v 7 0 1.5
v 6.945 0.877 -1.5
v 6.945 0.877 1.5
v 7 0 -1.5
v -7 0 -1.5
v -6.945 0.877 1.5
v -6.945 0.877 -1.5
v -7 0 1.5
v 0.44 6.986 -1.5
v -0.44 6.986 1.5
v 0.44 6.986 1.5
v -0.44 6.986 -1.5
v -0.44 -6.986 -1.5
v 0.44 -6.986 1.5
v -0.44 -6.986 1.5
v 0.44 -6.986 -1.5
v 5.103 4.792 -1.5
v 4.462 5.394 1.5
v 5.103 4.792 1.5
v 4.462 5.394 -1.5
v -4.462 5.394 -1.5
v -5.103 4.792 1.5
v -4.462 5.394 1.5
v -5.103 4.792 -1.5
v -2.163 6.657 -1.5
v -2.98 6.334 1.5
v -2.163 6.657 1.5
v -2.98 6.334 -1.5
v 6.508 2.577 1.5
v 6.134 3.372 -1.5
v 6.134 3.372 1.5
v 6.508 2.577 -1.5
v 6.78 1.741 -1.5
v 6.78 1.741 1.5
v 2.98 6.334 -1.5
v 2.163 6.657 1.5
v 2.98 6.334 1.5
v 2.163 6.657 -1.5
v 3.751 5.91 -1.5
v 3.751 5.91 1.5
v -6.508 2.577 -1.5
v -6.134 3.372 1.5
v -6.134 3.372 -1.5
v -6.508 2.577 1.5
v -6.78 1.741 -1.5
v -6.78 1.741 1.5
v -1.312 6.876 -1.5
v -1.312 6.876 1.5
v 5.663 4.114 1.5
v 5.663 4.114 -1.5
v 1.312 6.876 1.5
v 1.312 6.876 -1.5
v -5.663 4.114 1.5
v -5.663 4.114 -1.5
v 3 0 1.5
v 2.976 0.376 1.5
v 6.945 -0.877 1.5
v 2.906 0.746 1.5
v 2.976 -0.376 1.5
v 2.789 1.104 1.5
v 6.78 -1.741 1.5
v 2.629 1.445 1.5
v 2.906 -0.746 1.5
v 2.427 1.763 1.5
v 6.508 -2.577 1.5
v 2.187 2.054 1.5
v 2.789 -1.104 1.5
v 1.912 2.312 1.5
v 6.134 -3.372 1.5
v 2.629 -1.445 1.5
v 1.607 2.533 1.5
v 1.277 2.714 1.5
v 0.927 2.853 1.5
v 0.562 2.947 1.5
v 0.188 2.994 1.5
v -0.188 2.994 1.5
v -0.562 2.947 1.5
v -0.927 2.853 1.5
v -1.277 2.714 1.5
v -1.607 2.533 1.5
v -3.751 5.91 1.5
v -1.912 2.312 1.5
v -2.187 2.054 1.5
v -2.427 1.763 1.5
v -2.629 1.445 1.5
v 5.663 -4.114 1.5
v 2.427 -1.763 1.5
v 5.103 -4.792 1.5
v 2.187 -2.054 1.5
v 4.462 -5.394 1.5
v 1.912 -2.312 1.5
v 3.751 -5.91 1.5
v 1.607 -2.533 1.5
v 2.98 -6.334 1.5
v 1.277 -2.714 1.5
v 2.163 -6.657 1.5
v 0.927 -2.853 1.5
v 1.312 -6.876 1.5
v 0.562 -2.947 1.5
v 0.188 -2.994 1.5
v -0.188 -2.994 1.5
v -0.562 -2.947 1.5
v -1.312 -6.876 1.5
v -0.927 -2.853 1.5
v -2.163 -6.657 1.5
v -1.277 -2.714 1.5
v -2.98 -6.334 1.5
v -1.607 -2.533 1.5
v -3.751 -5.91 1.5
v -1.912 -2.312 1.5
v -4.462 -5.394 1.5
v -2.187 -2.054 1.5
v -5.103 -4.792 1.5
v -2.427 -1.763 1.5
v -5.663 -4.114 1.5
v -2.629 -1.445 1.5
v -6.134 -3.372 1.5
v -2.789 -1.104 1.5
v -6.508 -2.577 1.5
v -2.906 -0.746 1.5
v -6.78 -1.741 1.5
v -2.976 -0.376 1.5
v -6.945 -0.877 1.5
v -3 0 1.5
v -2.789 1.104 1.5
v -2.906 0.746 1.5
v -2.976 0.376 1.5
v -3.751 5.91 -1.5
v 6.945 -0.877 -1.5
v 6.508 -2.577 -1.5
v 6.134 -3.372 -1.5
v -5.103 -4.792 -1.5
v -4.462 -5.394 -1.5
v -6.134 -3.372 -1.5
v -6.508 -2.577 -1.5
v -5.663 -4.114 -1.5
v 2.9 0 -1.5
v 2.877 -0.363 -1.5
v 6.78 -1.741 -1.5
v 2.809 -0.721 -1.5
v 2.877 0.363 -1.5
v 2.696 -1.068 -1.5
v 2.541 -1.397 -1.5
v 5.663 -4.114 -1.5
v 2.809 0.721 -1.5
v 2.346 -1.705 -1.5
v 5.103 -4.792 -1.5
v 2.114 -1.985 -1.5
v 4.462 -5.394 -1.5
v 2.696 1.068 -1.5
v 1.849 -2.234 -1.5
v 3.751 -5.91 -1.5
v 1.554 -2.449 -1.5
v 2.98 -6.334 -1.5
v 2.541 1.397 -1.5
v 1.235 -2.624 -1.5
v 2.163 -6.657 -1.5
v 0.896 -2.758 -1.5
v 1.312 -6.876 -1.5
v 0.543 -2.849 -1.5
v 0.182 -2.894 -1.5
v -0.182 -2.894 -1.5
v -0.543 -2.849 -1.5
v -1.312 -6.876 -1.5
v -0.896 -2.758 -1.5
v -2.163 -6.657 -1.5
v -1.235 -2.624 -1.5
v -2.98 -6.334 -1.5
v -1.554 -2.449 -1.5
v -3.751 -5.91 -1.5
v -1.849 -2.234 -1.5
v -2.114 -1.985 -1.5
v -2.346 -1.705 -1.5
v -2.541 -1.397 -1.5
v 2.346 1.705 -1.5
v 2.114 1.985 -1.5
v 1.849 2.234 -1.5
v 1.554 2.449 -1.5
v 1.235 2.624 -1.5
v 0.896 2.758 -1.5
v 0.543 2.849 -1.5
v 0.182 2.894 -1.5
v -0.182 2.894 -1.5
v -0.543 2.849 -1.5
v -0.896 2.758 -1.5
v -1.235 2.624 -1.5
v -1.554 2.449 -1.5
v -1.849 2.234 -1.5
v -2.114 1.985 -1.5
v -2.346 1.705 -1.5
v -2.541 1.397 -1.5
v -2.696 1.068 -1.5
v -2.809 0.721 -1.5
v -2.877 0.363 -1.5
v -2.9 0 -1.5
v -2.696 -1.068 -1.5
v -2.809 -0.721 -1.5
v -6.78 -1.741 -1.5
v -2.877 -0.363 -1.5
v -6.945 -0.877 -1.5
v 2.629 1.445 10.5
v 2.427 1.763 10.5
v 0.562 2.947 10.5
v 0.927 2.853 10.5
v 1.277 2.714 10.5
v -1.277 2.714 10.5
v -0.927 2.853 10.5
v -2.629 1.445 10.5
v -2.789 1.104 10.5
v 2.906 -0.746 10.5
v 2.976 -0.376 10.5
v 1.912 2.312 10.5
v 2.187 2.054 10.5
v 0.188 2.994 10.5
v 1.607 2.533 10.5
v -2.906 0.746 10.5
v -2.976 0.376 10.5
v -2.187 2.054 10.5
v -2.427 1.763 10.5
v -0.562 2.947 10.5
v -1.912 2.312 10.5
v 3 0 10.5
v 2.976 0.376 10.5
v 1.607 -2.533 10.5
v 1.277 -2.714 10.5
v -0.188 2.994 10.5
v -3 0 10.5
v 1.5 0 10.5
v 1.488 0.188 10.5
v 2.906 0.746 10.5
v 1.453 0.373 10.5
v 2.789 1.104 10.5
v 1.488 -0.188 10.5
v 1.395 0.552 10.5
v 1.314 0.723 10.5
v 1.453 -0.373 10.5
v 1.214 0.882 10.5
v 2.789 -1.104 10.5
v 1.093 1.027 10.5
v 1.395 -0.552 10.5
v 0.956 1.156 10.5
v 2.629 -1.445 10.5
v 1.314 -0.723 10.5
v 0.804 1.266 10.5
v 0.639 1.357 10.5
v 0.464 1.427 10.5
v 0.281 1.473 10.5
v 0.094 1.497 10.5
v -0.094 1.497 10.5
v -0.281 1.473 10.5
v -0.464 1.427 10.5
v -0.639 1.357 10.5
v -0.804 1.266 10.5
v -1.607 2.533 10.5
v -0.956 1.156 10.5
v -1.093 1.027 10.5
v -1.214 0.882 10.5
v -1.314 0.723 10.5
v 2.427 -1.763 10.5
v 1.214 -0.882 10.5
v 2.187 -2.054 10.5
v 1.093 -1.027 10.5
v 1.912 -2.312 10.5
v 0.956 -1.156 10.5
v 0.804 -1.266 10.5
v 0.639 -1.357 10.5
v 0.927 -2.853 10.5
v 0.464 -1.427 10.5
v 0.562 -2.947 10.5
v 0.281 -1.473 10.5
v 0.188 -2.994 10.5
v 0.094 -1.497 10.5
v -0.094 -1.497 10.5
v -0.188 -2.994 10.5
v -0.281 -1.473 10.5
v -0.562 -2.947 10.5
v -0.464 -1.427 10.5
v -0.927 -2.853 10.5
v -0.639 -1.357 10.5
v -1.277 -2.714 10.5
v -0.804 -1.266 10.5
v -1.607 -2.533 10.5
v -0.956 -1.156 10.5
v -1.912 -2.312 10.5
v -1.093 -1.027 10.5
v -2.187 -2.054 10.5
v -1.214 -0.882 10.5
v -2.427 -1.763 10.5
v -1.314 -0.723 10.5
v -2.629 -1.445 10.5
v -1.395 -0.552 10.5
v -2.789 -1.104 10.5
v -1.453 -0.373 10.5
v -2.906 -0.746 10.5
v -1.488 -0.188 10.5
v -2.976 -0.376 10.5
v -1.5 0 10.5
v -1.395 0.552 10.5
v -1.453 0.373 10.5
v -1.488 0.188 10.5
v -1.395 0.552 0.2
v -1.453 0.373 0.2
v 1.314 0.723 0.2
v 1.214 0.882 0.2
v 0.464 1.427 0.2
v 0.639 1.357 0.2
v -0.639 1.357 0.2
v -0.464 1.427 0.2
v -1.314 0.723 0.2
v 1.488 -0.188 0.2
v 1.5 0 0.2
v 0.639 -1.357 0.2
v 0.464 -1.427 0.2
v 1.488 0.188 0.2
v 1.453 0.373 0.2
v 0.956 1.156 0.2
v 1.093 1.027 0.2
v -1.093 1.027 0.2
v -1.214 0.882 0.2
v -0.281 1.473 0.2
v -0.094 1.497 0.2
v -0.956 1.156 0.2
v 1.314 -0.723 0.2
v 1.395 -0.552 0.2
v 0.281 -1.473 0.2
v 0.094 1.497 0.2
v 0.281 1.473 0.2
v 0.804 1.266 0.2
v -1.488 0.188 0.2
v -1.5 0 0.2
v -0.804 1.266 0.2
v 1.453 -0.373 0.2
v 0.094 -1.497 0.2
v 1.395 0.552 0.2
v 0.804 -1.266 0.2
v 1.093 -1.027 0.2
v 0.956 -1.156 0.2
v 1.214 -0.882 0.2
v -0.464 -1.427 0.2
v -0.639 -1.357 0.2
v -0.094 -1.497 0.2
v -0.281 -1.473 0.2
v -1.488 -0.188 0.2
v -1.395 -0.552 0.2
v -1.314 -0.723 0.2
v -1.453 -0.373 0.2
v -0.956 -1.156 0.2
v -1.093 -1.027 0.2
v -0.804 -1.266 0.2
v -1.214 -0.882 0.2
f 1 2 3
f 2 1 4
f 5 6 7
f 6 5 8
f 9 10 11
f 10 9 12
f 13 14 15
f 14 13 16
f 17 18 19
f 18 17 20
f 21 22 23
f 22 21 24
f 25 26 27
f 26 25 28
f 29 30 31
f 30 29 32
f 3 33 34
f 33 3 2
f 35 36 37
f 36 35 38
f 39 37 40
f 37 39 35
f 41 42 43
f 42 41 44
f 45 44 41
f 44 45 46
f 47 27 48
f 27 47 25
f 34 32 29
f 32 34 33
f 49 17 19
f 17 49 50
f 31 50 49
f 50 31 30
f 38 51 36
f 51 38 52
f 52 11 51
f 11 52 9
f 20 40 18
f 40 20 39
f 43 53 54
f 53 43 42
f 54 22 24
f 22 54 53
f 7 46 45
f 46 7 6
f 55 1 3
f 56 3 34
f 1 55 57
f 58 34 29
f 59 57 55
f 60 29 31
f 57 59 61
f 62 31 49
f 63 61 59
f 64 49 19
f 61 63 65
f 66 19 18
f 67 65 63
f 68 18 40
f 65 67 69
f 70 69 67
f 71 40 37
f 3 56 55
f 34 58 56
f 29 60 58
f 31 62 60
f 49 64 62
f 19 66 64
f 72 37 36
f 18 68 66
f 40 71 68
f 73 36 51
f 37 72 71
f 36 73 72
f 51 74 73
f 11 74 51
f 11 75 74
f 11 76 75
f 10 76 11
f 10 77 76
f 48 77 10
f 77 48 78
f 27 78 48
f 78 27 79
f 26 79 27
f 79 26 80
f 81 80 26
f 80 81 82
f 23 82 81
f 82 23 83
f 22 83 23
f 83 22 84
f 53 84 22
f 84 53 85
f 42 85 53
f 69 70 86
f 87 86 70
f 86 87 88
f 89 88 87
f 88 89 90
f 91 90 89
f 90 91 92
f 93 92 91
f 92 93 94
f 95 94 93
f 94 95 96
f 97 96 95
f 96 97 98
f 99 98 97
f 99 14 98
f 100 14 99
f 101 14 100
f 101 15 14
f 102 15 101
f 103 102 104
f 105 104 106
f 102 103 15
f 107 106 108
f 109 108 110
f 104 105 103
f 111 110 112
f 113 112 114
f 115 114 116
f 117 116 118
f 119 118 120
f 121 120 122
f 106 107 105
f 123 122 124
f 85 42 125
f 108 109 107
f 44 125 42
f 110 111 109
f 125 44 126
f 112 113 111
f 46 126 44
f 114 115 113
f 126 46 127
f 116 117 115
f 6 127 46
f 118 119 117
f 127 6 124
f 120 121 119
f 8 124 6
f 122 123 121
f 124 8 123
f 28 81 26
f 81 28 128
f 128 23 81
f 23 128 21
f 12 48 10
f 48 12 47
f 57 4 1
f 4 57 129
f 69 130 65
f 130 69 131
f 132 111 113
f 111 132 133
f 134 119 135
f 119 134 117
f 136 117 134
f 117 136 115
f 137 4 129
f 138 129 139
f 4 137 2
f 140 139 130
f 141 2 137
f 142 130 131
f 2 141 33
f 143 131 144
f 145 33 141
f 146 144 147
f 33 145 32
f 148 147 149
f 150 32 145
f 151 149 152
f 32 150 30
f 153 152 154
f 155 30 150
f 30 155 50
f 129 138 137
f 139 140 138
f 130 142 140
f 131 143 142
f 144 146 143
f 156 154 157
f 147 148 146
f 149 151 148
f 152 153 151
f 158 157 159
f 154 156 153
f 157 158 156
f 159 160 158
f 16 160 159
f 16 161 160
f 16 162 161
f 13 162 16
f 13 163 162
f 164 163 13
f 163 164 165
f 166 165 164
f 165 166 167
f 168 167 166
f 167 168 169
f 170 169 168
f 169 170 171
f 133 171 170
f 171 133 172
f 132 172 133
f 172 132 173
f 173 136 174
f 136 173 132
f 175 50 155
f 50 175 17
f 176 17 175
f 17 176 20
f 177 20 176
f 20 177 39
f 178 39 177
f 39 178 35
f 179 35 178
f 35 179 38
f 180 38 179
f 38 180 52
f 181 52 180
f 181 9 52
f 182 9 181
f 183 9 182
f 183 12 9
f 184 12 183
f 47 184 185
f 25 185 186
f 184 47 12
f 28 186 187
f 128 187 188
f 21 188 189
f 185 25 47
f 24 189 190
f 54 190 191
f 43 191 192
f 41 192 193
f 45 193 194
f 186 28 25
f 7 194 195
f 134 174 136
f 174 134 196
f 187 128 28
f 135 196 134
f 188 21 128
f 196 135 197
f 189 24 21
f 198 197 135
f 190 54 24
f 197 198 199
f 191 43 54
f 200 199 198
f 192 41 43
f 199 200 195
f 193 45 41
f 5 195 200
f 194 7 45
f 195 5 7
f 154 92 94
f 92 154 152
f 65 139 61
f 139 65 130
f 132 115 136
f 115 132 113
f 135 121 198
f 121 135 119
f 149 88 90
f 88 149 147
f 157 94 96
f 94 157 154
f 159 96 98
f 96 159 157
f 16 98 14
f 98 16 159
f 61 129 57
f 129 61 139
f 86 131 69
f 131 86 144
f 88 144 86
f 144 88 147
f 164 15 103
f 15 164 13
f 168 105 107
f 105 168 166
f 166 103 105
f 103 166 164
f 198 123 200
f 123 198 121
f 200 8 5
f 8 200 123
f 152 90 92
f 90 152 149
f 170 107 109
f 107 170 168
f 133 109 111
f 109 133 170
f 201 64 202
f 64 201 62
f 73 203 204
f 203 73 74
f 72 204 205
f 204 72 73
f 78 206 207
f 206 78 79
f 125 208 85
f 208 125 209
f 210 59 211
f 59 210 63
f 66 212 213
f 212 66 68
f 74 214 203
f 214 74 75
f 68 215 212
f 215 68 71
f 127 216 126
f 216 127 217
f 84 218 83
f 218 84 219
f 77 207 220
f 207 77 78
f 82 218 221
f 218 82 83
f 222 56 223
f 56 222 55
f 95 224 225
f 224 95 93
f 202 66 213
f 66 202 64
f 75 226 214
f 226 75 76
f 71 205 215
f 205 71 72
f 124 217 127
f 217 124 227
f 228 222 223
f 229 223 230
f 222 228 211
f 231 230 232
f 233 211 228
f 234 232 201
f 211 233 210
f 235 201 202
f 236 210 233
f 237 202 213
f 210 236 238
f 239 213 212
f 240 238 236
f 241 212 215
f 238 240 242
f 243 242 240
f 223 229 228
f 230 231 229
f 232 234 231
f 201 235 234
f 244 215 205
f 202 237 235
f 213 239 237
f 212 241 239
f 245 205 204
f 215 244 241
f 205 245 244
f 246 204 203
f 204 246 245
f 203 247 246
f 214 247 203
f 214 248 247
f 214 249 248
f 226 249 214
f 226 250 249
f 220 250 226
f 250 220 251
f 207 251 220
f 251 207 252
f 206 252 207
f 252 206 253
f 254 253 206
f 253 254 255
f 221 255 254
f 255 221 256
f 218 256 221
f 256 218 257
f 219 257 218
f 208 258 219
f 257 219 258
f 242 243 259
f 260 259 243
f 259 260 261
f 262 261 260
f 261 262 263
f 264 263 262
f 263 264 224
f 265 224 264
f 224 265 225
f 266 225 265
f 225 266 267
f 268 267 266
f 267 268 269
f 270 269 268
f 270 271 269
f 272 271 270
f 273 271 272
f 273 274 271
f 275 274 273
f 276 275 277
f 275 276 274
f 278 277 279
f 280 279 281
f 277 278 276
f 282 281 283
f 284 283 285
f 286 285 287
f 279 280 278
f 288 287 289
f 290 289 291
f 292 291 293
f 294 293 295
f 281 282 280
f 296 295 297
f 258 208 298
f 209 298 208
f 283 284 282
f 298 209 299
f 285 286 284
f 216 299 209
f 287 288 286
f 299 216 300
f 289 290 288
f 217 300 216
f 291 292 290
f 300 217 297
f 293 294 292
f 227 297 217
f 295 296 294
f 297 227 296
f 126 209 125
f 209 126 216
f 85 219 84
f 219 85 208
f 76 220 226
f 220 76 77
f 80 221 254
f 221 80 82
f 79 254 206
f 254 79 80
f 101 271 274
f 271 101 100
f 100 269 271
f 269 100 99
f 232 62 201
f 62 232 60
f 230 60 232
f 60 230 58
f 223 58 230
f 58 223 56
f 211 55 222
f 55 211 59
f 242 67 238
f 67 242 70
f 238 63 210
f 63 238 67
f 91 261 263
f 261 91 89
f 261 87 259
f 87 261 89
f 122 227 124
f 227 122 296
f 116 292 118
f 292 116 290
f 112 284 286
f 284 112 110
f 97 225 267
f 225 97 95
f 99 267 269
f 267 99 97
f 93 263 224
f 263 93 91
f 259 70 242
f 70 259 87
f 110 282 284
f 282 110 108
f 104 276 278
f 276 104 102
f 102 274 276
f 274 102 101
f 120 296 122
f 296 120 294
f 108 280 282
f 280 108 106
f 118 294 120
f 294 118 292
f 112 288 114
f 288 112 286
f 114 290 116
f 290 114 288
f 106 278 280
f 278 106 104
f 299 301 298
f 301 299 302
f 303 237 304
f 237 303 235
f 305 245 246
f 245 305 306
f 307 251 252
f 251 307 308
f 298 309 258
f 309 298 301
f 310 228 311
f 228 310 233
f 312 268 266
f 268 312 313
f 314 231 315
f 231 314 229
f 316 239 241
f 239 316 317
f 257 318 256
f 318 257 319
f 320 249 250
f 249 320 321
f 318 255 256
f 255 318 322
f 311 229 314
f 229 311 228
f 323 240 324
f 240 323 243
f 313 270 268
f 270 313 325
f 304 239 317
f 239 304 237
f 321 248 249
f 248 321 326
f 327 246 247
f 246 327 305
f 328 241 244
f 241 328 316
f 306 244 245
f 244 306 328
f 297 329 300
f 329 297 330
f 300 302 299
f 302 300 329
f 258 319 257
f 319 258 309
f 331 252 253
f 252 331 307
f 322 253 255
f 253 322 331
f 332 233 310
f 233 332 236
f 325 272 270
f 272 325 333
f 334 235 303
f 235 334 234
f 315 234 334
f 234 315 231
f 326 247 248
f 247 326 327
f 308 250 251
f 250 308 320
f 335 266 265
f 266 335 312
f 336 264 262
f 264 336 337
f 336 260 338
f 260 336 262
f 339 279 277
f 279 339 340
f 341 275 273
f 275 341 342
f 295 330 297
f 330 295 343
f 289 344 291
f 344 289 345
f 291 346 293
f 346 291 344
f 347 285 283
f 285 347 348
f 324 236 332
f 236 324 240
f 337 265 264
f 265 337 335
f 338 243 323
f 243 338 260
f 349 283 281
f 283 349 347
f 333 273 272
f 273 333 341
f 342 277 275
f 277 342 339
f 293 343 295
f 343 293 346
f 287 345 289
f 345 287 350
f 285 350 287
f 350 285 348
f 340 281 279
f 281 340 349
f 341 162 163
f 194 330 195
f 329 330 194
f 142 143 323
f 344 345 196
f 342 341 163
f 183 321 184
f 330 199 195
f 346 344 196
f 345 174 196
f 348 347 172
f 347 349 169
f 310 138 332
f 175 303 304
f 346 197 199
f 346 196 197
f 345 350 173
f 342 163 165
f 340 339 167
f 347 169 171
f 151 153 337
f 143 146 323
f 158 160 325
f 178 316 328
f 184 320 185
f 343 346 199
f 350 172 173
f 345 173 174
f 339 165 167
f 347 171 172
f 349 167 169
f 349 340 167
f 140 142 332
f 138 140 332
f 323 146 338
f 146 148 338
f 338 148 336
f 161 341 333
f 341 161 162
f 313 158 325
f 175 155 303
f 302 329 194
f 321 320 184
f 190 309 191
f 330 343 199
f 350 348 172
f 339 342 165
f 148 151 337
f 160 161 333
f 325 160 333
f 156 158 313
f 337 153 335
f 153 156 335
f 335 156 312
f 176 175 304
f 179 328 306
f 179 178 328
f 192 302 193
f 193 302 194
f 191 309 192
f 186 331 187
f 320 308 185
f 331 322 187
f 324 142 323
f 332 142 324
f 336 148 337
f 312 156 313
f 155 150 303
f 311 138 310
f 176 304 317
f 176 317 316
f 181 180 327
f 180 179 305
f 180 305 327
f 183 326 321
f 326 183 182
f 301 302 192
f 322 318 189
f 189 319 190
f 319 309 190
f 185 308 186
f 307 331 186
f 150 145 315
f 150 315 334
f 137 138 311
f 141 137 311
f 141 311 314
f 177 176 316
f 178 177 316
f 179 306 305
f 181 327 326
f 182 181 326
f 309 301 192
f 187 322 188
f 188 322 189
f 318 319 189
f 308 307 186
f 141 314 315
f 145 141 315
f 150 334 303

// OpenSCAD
$fn = 50;


difference() {
	union() {
		translate(v = [0, 0, -1.5000000000]) {
			rotate(a = [0, 0, 0]) {
				cylinder(h = 3, r = 7.0000000000);
			}
		}
		translate(v = [0, 0, -1.5000000000]) {
			rotate(a = [0, 0, 0]) {
				cylinder(h = 12, r = 3.0000000000);
			}
		}
	}
	union() {
		translate(v = [0, 0, -125.0000000000]) {
			rotate(a = [0, 0, 0]) {
				cylinder(h = 250, r = 1.5000000000);
			}
		}
		#translate(v = [0, 0, 0.2000000000]) {
			rotate(a = [0, 180, 0]) {
				cylinder(h = 1.7000000000, r1 = 1.5000000000, r2 = 2.9000000000);
			}
		}
		#translate(v = [0, 0, 10.5000000000]) {
			rotate(a = [0, 180, 0]) {
				cylinder(h = 12, r = 1.5000000000);
			}
		}
	}
}
